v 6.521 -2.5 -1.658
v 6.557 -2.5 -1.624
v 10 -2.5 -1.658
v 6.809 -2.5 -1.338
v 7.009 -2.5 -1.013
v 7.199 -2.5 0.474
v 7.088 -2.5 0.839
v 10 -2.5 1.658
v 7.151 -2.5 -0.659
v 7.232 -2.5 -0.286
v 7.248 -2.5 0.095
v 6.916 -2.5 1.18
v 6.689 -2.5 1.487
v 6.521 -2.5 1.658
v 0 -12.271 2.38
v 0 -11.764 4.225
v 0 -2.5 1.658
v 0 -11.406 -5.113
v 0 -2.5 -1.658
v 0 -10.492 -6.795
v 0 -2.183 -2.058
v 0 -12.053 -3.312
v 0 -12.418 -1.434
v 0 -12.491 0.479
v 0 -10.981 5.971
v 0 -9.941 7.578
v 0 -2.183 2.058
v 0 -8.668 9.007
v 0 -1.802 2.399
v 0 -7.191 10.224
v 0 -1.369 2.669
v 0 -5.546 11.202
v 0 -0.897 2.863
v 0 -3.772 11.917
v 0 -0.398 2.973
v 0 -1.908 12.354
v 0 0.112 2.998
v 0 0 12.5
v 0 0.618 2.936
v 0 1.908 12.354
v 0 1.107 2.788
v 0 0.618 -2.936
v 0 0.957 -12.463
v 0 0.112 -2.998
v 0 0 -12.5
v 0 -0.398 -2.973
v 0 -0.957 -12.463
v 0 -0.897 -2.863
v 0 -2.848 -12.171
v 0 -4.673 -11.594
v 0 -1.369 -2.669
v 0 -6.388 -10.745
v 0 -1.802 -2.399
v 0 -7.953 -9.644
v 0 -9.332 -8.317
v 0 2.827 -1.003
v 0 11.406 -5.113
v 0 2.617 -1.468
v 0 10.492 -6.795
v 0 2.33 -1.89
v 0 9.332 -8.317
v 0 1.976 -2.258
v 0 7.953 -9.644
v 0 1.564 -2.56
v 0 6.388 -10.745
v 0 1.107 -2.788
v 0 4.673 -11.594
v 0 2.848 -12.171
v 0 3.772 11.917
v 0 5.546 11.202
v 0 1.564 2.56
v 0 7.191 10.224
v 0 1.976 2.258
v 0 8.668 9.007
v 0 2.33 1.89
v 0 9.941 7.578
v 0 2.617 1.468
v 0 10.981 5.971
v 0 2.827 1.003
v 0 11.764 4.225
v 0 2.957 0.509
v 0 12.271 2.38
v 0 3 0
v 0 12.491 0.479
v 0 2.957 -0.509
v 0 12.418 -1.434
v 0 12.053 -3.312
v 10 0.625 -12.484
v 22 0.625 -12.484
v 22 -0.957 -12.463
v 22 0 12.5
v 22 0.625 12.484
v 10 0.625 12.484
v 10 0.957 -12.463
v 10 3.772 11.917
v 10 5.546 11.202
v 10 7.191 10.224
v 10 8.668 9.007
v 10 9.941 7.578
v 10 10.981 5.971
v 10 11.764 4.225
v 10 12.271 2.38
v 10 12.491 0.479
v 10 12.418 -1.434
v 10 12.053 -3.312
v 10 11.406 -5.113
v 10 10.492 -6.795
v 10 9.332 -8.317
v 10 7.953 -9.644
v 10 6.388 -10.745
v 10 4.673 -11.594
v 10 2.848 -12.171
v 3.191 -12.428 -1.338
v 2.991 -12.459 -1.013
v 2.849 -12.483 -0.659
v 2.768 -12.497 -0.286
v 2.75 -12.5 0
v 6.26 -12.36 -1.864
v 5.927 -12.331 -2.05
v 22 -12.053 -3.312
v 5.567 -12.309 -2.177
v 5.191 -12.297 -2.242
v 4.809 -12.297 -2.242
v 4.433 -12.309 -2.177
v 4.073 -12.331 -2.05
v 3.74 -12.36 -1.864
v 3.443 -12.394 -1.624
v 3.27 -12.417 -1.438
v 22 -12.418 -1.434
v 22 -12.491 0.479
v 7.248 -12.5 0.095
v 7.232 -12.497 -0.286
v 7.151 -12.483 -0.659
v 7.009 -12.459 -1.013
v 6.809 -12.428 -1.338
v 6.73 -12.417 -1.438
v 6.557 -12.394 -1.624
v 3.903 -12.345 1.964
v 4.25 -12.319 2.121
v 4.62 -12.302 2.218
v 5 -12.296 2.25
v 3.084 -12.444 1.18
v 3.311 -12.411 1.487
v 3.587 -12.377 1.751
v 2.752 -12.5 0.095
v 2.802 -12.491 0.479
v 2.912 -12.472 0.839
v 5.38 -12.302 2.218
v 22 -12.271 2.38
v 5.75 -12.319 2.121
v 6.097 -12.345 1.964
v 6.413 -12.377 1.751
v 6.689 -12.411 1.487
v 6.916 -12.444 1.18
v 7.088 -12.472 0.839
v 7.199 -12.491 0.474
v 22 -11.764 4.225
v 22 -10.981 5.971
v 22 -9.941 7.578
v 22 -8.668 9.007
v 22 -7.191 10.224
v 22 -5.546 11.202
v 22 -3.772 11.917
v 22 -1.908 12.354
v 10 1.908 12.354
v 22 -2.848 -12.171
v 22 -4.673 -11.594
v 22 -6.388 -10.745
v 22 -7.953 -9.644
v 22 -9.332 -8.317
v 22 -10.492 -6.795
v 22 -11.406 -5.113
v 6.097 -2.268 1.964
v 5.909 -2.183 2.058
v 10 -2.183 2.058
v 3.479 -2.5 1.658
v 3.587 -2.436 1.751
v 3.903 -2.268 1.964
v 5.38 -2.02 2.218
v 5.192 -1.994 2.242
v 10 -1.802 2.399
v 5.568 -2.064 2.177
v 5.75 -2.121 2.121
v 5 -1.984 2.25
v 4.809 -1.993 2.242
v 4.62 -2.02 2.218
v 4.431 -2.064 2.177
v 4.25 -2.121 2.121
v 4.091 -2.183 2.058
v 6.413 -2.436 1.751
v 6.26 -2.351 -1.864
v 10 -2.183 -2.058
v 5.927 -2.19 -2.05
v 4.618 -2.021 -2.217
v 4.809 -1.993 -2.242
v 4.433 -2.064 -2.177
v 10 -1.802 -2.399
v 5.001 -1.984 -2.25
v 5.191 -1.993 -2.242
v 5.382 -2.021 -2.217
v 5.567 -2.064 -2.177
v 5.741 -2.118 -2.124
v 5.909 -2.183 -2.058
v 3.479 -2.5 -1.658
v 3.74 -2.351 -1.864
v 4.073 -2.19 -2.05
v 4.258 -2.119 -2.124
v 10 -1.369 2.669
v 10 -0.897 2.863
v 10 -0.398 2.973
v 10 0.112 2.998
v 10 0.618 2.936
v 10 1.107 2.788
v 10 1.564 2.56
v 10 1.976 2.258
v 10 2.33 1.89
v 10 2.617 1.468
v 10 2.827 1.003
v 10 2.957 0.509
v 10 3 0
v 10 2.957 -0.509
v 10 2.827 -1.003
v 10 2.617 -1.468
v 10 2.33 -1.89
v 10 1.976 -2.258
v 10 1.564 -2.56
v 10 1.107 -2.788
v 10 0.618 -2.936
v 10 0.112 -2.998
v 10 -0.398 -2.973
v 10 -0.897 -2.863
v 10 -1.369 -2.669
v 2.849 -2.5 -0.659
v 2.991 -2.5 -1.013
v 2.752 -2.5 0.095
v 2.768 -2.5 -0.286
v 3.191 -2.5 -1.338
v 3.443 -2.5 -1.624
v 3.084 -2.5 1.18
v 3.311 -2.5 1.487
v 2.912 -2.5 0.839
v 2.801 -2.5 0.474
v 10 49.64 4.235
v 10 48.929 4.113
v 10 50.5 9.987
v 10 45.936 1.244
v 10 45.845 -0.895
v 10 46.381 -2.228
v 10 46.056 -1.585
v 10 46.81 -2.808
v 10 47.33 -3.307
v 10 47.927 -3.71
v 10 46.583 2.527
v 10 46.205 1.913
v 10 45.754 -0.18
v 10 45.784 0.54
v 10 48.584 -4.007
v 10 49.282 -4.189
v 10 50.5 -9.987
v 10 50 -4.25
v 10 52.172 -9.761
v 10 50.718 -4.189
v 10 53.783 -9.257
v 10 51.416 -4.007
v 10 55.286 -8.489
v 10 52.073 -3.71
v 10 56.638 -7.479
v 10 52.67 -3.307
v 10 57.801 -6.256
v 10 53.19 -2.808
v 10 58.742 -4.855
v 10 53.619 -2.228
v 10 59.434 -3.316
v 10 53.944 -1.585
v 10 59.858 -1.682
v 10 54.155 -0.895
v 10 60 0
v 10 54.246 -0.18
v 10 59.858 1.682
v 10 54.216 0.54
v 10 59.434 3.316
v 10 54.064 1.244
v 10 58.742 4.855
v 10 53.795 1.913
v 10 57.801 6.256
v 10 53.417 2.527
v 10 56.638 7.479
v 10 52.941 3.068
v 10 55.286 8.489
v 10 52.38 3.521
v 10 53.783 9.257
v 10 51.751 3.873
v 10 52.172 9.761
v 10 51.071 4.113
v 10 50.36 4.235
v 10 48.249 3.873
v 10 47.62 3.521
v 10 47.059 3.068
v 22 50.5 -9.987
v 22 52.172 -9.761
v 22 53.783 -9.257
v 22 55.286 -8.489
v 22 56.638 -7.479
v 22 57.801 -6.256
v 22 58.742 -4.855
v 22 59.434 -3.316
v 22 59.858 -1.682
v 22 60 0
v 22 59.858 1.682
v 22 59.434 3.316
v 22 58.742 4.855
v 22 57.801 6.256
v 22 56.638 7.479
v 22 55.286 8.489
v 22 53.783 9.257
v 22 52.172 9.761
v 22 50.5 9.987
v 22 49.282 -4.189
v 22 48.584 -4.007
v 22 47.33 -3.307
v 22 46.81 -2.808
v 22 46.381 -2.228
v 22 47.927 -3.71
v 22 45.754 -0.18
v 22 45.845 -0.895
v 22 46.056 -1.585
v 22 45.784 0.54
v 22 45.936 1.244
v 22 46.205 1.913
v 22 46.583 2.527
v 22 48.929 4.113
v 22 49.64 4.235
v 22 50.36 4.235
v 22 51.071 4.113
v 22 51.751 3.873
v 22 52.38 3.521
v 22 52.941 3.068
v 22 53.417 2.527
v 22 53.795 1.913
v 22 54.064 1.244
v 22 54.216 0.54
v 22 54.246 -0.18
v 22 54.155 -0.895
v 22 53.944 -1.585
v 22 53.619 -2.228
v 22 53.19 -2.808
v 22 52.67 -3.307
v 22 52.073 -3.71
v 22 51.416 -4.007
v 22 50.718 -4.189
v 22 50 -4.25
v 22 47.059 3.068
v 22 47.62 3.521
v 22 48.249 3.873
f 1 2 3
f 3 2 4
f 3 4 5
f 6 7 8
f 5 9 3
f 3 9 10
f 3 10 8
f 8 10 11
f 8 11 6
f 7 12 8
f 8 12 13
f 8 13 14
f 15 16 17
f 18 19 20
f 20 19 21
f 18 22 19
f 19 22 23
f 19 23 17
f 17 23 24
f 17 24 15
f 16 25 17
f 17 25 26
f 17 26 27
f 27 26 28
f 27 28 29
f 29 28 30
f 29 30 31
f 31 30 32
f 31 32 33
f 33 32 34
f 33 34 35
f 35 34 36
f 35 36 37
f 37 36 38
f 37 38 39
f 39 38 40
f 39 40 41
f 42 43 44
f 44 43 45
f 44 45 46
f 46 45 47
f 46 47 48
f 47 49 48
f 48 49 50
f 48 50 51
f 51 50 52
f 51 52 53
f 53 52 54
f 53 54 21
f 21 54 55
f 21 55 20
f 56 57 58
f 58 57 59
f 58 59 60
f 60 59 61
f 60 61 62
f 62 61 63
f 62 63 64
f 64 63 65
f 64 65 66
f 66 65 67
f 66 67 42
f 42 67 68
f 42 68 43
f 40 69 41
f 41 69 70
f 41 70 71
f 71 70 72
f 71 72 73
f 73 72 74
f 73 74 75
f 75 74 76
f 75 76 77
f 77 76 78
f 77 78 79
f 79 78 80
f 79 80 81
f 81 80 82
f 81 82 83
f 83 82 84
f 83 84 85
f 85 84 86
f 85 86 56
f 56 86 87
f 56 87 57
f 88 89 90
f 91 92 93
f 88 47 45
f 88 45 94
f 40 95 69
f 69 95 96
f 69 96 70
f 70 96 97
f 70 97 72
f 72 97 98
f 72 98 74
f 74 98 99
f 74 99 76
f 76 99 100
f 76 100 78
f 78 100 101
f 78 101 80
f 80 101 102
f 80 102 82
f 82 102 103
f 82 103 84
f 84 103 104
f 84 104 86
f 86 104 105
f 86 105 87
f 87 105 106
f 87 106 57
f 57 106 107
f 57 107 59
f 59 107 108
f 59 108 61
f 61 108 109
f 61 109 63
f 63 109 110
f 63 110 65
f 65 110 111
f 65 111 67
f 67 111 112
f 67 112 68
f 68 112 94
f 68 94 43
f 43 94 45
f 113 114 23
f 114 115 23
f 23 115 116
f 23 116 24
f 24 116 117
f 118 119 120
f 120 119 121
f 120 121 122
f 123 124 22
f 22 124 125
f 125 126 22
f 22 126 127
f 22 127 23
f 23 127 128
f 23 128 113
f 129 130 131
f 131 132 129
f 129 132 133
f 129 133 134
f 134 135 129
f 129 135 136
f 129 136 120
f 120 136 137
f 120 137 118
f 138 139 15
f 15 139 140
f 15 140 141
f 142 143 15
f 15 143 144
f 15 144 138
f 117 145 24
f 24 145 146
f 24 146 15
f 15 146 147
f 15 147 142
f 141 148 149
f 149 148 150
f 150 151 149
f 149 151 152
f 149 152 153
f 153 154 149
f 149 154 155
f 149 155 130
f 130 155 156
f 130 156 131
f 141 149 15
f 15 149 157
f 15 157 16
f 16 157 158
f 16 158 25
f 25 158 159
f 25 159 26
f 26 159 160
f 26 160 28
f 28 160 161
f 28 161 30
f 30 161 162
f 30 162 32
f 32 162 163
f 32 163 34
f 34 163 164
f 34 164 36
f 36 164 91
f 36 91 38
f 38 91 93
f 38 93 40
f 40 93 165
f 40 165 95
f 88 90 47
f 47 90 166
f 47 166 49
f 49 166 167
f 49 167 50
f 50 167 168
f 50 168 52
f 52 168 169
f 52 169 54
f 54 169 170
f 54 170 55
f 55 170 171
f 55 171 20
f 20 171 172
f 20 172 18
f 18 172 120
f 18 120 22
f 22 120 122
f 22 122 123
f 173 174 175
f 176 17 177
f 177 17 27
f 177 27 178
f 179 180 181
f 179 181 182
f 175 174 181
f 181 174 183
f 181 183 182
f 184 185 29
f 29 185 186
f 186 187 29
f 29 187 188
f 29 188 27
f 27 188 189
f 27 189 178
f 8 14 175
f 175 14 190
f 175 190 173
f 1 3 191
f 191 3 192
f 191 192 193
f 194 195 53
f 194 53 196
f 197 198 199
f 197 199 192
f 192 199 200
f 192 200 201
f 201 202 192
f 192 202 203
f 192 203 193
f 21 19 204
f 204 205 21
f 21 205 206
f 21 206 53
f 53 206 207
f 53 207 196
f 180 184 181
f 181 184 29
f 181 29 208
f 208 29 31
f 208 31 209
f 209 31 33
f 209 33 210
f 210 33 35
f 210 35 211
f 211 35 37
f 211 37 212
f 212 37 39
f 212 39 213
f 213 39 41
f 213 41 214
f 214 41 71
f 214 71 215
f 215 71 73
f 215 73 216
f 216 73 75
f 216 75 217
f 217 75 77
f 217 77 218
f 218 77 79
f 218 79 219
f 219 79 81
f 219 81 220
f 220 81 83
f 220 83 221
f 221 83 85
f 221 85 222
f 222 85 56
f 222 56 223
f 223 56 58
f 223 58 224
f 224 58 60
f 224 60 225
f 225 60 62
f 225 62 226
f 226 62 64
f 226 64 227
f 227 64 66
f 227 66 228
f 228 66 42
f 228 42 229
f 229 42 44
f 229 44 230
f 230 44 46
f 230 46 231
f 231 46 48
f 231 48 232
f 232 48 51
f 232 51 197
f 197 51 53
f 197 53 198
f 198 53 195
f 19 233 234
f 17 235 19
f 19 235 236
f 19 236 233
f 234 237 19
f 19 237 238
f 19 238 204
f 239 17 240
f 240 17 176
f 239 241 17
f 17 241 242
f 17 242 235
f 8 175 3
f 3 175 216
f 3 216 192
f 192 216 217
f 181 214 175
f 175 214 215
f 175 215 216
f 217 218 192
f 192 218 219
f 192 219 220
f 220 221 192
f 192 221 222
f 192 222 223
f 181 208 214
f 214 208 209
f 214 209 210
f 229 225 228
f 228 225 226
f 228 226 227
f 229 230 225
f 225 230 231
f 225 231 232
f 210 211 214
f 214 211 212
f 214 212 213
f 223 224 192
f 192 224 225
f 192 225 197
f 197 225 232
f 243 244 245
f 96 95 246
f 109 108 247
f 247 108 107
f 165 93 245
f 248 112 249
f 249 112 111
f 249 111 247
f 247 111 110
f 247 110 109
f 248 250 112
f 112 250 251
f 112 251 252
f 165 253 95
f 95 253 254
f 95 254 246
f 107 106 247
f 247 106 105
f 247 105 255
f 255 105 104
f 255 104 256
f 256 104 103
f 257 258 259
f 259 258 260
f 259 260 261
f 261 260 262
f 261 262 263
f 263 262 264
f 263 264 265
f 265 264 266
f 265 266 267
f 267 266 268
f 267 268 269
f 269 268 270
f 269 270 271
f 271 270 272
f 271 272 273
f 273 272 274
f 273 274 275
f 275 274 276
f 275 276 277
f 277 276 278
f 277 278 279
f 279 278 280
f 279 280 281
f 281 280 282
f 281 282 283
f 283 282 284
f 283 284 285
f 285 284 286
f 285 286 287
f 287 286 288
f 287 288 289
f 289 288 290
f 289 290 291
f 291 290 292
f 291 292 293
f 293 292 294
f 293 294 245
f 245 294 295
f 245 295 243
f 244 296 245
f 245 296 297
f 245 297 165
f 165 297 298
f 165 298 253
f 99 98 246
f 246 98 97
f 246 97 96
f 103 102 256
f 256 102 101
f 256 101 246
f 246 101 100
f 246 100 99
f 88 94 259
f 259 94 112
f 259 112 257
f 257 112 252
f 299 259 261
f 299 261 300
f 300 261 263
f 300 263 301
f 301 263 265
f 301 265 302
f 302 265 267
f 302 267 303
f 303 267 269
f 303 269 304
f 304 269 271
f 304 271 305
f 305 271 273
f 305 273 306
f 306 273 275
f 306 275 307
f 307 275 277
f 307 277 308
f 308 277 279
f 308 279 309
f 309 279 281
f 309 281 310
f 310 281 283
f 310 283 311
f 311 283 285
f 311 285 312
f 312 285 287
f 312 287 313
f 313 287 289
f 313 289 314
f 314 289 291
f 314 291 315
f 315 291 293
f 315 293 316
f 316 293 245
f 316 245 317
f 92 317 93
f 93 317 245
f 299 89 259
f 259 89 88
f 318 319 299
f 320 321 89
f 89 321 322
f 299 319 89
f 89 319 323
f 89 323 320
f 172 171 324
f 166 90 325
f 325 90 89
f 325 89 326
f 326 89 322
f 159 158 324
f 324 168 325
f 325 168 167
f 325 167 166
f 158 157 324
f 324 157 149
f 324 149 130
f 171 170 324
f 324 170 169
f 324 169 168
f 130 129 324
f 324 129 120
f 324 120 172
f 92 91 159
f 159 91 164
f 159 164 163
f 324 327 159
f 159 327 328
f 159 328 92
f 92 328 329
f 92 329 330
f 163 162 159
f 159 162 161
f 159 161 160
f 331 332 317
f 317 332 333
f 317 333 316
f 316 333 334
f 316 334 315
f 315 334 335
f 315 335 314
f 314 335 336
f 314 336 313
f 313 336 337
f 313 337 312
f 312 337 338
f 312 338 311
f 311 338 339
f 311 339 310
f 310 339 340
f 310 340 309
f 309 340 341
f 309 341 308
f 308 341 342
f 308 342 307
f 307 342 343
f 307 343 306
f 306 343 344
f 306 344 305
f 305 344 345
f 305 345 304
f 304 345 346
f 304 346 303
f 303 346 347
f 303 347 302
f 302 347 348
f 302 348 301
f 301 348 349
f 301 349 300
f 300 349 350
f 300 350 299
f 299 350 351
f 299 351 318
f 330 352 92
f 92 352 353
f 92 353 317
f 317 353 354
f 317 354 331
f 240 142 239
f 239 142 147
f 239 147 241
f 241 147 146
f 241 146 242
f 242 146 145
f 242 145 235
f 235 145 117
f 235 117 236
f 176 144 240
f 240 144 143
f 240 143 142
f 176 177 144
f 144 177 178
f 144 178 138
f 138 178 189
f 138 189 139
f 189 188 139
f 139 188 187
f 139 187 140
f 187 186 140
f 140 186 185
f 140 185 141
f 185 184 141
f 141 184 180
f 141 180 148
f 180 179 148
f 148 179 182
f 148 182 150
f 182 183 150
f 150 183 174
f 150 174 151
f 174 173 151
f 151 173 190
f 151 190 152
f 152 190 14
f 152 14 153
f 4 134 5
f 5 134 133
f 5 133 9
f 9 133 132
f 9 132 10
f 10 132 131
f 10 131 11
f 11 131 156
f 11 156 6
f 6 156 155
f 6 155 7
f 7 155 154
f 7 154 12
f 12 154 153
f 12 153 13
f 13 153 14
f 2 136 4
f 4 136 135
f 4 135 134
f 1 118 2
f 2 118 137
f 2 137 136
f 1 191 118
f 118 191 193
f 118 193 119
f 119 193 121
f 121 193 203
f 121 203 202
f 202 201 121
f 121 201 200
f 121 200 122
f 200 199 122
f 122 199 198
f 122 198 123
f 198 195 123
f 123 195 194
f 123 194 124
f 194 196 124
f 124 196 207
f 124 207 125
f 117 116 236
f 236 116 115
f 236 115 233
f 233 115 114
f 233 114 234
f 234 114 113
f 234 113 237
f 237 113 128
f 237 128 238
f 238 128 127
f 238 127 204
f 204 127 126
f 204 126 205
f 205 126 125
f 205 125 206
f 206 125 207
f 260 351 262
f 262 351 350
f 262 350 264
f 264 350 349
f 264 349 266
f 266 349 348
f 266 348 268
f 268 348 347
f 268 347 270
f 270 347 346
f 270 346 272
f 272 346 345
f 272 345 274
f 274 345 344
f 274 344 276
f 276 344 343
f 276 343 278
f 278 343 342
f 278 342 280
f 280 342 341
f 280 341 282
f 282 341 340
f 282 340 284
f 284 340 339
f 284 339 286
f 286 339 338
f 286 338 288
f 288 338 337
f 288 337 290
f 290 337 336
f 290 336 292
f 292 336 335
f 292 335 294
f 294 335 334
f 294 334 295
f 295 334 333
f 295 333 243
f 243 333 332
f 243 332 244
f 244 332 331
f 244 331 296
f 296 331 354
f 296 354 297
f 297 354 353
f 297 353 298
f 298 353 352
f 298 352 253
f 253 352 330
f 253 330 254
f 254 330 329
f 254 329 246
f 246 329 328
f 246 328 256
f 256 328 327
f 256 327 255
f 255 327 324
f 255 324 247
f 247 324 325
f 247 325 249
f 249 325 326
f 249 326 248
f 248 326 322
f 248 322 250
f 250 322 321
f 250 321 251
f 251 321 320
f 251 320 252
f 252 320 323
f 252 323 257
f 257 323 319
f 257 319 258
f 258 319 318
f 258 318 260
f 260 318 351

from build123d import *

# Parameters (mm, degrees)
CROQUIS1_R              = 12.5
SALIENTE_EXTRUIR1_DEPTH = 10
SALIENTE_EXTRUIR2_DEPTH = 12
CROQUIS3_R              = 2.25
CORTAR_EXTRUIR1_DEPTH   = 66.117202028
CROQUIS4_R              = 4.25
CORTAR_EXTRUIR2_DEPTH   = 66.117202081


with BuildPart() as part:
    # Croquis1 → Saliente-Extruir1 (new body)
    with BuildSketch(Plane(origin=(0, 0, 0), x_dir=(0, 0, -1), z_dir=(1, 0, 0))):
        Circle(CROQUIS1_R)
        with BuildLine():
            Line((-1.658312395, -2.5), (1.658312395, -2.5))
            ThreePointArc((1.658312395, -2.5), (0, 3), (-1.658312395, -2.5))
        make_face(mode=Mode.SUBTRACT)
    extrude(amount=SALIENTE_EXTRUIR1_DEPTH)

    # Croquis2 → Saliente-Extruir2 (add)
    with BuildSketch(Plane(origin=(10, 0, 0), x_dir=(0, 0, -1), z_dir=(1, 0, 0))):
        with BuildLine():
            Line((-9.987492178, 50.5), (-12.484365222, 0.625))
            ThreePointArc((-12.484365222, 0.625), (0, -12.5), (12.484365222, 0.625))
            Line((12.484365222, 0.625), (9.987492178, 50.5))
            ThreePointArc((9.987492178, 50.5), (0, 60), (-9.987492178, 50.5))
        make_face()
    extrude(amount=SALIENTE_EXTRUIR2_DEPTH)

    # Croquis3 → Cortar-Extruir1 (cut, through all)
    with BuildSketch(Plane(origin=(0, 0, 0), x_dir=(1, 0, 0), z_dir=(0, 1, 0))):
        with Locations(Location((5, 0, 0), (0, 0, 227.478835592))):
            Circle(CROQUIS3_R)
    extrude(amount=-CORTAR_EXTRUIR1_DEPTH, mode=Mode.SUBTRACT)

    # Croquis4 → Cortar-Extruir2 (cut, through all)
    with BuildSketch(Plane(origin=(22, 0, 0), x_dir=(0, 0, -1), z_dir=(1, 0, 0))):
        with Locations((0, 50)):
            Circle(CROQUIS4_R)
    extrude(amount=-CORTAR_EXTRUIR2_DEPTH, mode=Mode.SUBTRACT)


solid = part.part
